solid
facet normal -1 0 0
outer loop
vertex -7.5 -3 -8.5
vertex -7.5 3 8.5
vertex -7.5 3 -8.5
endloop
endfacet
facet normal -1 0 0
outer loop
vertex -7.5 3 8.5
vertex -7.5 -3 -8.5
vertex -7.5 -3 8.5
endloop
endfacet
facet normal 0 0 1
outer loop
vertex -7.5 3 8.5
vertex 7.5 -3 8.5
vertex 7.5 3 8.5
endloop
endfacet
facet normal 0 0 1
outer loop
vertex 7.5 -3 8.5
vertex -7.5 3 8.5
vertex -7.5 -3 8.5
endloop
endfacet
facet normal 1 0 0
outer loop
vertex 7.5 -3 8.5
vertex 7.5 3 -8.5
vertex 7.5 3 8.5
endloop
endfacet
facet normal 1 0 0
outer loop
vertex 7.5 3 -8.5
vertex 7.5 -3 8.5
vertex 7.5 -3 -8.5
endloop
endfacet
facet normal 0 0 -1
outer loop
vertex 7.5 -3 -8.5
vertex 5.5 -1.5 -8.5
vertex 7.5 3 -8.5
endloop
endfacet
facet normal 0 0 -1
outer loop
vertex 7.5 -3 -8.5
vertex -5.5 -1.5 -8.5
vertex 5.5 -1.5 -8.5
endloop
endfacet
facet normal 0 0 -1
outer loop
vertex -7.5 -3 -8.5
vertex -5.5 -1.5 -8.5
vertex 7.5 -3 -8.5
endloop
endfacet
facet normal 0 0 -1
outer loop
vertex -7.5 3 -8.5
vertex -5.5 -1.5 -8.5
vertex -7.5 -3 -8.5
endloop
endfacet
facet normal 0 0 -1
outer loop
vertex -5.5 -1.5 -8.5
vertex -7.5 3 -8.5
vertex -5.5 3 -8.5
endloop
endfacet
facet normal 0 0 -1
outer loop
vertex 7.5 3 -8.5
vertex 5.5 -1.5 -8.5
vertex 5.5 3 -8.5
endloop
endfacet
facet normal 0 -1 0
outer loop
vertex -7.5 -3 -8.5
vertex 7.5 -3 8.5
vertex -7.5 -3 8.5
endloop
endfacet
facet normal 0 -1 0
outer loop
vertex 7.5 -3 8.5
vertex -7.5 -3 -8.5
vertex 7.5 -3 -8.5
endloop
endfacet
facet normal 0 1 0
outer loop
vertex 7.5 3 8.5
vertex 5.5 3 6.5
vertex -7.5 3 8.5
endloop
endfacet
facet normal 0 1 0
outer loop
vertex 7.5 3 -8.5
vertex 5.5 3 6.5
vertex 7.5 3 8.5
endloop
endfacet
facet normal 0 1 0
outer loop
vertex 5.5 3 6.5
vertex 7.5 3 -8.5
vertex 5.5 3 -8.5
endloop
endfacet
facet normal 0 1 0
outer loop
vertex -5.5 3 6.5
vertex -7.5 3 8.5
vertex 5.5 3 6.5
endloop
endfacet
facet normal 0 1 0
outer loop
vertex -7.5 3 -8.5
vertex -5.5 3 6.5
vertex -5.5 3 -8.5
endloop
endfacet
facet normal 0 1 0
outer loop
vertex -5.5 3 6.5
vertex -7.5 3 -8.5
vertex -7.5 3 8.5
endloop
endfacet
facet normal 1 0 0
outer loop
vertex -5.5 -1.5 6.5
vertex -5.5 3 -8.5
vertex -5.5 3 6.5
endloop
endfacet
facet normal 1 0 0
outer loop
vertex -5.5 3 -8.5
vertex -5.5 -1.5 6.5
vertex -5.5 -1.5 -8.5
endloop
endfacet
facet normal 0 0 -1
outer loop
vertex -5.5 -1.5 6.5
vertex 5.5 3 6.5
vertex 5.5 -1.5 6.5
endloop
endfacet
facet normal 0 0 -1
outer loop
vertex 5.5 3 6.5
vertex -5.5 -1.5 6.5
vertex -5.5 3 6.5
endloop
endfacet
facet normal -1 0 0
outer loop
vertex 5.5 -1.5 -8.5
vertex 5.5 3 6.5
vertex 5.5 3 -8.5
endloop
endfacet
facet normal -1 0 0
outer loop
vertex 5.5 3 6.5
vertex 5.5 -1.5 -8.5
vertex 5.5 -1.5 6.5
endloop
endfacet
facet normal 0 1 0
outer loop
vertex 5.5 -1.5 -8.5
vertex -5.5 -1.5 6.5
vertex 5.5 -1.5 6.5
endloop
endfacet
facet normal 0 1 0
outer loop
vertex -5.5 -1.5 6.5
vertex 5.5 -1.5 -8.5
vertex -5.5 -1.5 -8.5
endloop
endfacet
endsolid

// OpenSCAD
//DHT11-Halterung ohne Gehäuse

difference() {
cube(size = [15,6,17], center = true);

translate(v = [-5.5, -1.5, -12])
cube(size = [11,6,18.5]);
   
}




/*
translate(v = [-12, -4, 10])
cube(size = [24,4,1.5]);

translate(v = [-10, -2, -8])
color( "red", 1.0 )
cube(size = [12.5,5.8,18]);
*/
